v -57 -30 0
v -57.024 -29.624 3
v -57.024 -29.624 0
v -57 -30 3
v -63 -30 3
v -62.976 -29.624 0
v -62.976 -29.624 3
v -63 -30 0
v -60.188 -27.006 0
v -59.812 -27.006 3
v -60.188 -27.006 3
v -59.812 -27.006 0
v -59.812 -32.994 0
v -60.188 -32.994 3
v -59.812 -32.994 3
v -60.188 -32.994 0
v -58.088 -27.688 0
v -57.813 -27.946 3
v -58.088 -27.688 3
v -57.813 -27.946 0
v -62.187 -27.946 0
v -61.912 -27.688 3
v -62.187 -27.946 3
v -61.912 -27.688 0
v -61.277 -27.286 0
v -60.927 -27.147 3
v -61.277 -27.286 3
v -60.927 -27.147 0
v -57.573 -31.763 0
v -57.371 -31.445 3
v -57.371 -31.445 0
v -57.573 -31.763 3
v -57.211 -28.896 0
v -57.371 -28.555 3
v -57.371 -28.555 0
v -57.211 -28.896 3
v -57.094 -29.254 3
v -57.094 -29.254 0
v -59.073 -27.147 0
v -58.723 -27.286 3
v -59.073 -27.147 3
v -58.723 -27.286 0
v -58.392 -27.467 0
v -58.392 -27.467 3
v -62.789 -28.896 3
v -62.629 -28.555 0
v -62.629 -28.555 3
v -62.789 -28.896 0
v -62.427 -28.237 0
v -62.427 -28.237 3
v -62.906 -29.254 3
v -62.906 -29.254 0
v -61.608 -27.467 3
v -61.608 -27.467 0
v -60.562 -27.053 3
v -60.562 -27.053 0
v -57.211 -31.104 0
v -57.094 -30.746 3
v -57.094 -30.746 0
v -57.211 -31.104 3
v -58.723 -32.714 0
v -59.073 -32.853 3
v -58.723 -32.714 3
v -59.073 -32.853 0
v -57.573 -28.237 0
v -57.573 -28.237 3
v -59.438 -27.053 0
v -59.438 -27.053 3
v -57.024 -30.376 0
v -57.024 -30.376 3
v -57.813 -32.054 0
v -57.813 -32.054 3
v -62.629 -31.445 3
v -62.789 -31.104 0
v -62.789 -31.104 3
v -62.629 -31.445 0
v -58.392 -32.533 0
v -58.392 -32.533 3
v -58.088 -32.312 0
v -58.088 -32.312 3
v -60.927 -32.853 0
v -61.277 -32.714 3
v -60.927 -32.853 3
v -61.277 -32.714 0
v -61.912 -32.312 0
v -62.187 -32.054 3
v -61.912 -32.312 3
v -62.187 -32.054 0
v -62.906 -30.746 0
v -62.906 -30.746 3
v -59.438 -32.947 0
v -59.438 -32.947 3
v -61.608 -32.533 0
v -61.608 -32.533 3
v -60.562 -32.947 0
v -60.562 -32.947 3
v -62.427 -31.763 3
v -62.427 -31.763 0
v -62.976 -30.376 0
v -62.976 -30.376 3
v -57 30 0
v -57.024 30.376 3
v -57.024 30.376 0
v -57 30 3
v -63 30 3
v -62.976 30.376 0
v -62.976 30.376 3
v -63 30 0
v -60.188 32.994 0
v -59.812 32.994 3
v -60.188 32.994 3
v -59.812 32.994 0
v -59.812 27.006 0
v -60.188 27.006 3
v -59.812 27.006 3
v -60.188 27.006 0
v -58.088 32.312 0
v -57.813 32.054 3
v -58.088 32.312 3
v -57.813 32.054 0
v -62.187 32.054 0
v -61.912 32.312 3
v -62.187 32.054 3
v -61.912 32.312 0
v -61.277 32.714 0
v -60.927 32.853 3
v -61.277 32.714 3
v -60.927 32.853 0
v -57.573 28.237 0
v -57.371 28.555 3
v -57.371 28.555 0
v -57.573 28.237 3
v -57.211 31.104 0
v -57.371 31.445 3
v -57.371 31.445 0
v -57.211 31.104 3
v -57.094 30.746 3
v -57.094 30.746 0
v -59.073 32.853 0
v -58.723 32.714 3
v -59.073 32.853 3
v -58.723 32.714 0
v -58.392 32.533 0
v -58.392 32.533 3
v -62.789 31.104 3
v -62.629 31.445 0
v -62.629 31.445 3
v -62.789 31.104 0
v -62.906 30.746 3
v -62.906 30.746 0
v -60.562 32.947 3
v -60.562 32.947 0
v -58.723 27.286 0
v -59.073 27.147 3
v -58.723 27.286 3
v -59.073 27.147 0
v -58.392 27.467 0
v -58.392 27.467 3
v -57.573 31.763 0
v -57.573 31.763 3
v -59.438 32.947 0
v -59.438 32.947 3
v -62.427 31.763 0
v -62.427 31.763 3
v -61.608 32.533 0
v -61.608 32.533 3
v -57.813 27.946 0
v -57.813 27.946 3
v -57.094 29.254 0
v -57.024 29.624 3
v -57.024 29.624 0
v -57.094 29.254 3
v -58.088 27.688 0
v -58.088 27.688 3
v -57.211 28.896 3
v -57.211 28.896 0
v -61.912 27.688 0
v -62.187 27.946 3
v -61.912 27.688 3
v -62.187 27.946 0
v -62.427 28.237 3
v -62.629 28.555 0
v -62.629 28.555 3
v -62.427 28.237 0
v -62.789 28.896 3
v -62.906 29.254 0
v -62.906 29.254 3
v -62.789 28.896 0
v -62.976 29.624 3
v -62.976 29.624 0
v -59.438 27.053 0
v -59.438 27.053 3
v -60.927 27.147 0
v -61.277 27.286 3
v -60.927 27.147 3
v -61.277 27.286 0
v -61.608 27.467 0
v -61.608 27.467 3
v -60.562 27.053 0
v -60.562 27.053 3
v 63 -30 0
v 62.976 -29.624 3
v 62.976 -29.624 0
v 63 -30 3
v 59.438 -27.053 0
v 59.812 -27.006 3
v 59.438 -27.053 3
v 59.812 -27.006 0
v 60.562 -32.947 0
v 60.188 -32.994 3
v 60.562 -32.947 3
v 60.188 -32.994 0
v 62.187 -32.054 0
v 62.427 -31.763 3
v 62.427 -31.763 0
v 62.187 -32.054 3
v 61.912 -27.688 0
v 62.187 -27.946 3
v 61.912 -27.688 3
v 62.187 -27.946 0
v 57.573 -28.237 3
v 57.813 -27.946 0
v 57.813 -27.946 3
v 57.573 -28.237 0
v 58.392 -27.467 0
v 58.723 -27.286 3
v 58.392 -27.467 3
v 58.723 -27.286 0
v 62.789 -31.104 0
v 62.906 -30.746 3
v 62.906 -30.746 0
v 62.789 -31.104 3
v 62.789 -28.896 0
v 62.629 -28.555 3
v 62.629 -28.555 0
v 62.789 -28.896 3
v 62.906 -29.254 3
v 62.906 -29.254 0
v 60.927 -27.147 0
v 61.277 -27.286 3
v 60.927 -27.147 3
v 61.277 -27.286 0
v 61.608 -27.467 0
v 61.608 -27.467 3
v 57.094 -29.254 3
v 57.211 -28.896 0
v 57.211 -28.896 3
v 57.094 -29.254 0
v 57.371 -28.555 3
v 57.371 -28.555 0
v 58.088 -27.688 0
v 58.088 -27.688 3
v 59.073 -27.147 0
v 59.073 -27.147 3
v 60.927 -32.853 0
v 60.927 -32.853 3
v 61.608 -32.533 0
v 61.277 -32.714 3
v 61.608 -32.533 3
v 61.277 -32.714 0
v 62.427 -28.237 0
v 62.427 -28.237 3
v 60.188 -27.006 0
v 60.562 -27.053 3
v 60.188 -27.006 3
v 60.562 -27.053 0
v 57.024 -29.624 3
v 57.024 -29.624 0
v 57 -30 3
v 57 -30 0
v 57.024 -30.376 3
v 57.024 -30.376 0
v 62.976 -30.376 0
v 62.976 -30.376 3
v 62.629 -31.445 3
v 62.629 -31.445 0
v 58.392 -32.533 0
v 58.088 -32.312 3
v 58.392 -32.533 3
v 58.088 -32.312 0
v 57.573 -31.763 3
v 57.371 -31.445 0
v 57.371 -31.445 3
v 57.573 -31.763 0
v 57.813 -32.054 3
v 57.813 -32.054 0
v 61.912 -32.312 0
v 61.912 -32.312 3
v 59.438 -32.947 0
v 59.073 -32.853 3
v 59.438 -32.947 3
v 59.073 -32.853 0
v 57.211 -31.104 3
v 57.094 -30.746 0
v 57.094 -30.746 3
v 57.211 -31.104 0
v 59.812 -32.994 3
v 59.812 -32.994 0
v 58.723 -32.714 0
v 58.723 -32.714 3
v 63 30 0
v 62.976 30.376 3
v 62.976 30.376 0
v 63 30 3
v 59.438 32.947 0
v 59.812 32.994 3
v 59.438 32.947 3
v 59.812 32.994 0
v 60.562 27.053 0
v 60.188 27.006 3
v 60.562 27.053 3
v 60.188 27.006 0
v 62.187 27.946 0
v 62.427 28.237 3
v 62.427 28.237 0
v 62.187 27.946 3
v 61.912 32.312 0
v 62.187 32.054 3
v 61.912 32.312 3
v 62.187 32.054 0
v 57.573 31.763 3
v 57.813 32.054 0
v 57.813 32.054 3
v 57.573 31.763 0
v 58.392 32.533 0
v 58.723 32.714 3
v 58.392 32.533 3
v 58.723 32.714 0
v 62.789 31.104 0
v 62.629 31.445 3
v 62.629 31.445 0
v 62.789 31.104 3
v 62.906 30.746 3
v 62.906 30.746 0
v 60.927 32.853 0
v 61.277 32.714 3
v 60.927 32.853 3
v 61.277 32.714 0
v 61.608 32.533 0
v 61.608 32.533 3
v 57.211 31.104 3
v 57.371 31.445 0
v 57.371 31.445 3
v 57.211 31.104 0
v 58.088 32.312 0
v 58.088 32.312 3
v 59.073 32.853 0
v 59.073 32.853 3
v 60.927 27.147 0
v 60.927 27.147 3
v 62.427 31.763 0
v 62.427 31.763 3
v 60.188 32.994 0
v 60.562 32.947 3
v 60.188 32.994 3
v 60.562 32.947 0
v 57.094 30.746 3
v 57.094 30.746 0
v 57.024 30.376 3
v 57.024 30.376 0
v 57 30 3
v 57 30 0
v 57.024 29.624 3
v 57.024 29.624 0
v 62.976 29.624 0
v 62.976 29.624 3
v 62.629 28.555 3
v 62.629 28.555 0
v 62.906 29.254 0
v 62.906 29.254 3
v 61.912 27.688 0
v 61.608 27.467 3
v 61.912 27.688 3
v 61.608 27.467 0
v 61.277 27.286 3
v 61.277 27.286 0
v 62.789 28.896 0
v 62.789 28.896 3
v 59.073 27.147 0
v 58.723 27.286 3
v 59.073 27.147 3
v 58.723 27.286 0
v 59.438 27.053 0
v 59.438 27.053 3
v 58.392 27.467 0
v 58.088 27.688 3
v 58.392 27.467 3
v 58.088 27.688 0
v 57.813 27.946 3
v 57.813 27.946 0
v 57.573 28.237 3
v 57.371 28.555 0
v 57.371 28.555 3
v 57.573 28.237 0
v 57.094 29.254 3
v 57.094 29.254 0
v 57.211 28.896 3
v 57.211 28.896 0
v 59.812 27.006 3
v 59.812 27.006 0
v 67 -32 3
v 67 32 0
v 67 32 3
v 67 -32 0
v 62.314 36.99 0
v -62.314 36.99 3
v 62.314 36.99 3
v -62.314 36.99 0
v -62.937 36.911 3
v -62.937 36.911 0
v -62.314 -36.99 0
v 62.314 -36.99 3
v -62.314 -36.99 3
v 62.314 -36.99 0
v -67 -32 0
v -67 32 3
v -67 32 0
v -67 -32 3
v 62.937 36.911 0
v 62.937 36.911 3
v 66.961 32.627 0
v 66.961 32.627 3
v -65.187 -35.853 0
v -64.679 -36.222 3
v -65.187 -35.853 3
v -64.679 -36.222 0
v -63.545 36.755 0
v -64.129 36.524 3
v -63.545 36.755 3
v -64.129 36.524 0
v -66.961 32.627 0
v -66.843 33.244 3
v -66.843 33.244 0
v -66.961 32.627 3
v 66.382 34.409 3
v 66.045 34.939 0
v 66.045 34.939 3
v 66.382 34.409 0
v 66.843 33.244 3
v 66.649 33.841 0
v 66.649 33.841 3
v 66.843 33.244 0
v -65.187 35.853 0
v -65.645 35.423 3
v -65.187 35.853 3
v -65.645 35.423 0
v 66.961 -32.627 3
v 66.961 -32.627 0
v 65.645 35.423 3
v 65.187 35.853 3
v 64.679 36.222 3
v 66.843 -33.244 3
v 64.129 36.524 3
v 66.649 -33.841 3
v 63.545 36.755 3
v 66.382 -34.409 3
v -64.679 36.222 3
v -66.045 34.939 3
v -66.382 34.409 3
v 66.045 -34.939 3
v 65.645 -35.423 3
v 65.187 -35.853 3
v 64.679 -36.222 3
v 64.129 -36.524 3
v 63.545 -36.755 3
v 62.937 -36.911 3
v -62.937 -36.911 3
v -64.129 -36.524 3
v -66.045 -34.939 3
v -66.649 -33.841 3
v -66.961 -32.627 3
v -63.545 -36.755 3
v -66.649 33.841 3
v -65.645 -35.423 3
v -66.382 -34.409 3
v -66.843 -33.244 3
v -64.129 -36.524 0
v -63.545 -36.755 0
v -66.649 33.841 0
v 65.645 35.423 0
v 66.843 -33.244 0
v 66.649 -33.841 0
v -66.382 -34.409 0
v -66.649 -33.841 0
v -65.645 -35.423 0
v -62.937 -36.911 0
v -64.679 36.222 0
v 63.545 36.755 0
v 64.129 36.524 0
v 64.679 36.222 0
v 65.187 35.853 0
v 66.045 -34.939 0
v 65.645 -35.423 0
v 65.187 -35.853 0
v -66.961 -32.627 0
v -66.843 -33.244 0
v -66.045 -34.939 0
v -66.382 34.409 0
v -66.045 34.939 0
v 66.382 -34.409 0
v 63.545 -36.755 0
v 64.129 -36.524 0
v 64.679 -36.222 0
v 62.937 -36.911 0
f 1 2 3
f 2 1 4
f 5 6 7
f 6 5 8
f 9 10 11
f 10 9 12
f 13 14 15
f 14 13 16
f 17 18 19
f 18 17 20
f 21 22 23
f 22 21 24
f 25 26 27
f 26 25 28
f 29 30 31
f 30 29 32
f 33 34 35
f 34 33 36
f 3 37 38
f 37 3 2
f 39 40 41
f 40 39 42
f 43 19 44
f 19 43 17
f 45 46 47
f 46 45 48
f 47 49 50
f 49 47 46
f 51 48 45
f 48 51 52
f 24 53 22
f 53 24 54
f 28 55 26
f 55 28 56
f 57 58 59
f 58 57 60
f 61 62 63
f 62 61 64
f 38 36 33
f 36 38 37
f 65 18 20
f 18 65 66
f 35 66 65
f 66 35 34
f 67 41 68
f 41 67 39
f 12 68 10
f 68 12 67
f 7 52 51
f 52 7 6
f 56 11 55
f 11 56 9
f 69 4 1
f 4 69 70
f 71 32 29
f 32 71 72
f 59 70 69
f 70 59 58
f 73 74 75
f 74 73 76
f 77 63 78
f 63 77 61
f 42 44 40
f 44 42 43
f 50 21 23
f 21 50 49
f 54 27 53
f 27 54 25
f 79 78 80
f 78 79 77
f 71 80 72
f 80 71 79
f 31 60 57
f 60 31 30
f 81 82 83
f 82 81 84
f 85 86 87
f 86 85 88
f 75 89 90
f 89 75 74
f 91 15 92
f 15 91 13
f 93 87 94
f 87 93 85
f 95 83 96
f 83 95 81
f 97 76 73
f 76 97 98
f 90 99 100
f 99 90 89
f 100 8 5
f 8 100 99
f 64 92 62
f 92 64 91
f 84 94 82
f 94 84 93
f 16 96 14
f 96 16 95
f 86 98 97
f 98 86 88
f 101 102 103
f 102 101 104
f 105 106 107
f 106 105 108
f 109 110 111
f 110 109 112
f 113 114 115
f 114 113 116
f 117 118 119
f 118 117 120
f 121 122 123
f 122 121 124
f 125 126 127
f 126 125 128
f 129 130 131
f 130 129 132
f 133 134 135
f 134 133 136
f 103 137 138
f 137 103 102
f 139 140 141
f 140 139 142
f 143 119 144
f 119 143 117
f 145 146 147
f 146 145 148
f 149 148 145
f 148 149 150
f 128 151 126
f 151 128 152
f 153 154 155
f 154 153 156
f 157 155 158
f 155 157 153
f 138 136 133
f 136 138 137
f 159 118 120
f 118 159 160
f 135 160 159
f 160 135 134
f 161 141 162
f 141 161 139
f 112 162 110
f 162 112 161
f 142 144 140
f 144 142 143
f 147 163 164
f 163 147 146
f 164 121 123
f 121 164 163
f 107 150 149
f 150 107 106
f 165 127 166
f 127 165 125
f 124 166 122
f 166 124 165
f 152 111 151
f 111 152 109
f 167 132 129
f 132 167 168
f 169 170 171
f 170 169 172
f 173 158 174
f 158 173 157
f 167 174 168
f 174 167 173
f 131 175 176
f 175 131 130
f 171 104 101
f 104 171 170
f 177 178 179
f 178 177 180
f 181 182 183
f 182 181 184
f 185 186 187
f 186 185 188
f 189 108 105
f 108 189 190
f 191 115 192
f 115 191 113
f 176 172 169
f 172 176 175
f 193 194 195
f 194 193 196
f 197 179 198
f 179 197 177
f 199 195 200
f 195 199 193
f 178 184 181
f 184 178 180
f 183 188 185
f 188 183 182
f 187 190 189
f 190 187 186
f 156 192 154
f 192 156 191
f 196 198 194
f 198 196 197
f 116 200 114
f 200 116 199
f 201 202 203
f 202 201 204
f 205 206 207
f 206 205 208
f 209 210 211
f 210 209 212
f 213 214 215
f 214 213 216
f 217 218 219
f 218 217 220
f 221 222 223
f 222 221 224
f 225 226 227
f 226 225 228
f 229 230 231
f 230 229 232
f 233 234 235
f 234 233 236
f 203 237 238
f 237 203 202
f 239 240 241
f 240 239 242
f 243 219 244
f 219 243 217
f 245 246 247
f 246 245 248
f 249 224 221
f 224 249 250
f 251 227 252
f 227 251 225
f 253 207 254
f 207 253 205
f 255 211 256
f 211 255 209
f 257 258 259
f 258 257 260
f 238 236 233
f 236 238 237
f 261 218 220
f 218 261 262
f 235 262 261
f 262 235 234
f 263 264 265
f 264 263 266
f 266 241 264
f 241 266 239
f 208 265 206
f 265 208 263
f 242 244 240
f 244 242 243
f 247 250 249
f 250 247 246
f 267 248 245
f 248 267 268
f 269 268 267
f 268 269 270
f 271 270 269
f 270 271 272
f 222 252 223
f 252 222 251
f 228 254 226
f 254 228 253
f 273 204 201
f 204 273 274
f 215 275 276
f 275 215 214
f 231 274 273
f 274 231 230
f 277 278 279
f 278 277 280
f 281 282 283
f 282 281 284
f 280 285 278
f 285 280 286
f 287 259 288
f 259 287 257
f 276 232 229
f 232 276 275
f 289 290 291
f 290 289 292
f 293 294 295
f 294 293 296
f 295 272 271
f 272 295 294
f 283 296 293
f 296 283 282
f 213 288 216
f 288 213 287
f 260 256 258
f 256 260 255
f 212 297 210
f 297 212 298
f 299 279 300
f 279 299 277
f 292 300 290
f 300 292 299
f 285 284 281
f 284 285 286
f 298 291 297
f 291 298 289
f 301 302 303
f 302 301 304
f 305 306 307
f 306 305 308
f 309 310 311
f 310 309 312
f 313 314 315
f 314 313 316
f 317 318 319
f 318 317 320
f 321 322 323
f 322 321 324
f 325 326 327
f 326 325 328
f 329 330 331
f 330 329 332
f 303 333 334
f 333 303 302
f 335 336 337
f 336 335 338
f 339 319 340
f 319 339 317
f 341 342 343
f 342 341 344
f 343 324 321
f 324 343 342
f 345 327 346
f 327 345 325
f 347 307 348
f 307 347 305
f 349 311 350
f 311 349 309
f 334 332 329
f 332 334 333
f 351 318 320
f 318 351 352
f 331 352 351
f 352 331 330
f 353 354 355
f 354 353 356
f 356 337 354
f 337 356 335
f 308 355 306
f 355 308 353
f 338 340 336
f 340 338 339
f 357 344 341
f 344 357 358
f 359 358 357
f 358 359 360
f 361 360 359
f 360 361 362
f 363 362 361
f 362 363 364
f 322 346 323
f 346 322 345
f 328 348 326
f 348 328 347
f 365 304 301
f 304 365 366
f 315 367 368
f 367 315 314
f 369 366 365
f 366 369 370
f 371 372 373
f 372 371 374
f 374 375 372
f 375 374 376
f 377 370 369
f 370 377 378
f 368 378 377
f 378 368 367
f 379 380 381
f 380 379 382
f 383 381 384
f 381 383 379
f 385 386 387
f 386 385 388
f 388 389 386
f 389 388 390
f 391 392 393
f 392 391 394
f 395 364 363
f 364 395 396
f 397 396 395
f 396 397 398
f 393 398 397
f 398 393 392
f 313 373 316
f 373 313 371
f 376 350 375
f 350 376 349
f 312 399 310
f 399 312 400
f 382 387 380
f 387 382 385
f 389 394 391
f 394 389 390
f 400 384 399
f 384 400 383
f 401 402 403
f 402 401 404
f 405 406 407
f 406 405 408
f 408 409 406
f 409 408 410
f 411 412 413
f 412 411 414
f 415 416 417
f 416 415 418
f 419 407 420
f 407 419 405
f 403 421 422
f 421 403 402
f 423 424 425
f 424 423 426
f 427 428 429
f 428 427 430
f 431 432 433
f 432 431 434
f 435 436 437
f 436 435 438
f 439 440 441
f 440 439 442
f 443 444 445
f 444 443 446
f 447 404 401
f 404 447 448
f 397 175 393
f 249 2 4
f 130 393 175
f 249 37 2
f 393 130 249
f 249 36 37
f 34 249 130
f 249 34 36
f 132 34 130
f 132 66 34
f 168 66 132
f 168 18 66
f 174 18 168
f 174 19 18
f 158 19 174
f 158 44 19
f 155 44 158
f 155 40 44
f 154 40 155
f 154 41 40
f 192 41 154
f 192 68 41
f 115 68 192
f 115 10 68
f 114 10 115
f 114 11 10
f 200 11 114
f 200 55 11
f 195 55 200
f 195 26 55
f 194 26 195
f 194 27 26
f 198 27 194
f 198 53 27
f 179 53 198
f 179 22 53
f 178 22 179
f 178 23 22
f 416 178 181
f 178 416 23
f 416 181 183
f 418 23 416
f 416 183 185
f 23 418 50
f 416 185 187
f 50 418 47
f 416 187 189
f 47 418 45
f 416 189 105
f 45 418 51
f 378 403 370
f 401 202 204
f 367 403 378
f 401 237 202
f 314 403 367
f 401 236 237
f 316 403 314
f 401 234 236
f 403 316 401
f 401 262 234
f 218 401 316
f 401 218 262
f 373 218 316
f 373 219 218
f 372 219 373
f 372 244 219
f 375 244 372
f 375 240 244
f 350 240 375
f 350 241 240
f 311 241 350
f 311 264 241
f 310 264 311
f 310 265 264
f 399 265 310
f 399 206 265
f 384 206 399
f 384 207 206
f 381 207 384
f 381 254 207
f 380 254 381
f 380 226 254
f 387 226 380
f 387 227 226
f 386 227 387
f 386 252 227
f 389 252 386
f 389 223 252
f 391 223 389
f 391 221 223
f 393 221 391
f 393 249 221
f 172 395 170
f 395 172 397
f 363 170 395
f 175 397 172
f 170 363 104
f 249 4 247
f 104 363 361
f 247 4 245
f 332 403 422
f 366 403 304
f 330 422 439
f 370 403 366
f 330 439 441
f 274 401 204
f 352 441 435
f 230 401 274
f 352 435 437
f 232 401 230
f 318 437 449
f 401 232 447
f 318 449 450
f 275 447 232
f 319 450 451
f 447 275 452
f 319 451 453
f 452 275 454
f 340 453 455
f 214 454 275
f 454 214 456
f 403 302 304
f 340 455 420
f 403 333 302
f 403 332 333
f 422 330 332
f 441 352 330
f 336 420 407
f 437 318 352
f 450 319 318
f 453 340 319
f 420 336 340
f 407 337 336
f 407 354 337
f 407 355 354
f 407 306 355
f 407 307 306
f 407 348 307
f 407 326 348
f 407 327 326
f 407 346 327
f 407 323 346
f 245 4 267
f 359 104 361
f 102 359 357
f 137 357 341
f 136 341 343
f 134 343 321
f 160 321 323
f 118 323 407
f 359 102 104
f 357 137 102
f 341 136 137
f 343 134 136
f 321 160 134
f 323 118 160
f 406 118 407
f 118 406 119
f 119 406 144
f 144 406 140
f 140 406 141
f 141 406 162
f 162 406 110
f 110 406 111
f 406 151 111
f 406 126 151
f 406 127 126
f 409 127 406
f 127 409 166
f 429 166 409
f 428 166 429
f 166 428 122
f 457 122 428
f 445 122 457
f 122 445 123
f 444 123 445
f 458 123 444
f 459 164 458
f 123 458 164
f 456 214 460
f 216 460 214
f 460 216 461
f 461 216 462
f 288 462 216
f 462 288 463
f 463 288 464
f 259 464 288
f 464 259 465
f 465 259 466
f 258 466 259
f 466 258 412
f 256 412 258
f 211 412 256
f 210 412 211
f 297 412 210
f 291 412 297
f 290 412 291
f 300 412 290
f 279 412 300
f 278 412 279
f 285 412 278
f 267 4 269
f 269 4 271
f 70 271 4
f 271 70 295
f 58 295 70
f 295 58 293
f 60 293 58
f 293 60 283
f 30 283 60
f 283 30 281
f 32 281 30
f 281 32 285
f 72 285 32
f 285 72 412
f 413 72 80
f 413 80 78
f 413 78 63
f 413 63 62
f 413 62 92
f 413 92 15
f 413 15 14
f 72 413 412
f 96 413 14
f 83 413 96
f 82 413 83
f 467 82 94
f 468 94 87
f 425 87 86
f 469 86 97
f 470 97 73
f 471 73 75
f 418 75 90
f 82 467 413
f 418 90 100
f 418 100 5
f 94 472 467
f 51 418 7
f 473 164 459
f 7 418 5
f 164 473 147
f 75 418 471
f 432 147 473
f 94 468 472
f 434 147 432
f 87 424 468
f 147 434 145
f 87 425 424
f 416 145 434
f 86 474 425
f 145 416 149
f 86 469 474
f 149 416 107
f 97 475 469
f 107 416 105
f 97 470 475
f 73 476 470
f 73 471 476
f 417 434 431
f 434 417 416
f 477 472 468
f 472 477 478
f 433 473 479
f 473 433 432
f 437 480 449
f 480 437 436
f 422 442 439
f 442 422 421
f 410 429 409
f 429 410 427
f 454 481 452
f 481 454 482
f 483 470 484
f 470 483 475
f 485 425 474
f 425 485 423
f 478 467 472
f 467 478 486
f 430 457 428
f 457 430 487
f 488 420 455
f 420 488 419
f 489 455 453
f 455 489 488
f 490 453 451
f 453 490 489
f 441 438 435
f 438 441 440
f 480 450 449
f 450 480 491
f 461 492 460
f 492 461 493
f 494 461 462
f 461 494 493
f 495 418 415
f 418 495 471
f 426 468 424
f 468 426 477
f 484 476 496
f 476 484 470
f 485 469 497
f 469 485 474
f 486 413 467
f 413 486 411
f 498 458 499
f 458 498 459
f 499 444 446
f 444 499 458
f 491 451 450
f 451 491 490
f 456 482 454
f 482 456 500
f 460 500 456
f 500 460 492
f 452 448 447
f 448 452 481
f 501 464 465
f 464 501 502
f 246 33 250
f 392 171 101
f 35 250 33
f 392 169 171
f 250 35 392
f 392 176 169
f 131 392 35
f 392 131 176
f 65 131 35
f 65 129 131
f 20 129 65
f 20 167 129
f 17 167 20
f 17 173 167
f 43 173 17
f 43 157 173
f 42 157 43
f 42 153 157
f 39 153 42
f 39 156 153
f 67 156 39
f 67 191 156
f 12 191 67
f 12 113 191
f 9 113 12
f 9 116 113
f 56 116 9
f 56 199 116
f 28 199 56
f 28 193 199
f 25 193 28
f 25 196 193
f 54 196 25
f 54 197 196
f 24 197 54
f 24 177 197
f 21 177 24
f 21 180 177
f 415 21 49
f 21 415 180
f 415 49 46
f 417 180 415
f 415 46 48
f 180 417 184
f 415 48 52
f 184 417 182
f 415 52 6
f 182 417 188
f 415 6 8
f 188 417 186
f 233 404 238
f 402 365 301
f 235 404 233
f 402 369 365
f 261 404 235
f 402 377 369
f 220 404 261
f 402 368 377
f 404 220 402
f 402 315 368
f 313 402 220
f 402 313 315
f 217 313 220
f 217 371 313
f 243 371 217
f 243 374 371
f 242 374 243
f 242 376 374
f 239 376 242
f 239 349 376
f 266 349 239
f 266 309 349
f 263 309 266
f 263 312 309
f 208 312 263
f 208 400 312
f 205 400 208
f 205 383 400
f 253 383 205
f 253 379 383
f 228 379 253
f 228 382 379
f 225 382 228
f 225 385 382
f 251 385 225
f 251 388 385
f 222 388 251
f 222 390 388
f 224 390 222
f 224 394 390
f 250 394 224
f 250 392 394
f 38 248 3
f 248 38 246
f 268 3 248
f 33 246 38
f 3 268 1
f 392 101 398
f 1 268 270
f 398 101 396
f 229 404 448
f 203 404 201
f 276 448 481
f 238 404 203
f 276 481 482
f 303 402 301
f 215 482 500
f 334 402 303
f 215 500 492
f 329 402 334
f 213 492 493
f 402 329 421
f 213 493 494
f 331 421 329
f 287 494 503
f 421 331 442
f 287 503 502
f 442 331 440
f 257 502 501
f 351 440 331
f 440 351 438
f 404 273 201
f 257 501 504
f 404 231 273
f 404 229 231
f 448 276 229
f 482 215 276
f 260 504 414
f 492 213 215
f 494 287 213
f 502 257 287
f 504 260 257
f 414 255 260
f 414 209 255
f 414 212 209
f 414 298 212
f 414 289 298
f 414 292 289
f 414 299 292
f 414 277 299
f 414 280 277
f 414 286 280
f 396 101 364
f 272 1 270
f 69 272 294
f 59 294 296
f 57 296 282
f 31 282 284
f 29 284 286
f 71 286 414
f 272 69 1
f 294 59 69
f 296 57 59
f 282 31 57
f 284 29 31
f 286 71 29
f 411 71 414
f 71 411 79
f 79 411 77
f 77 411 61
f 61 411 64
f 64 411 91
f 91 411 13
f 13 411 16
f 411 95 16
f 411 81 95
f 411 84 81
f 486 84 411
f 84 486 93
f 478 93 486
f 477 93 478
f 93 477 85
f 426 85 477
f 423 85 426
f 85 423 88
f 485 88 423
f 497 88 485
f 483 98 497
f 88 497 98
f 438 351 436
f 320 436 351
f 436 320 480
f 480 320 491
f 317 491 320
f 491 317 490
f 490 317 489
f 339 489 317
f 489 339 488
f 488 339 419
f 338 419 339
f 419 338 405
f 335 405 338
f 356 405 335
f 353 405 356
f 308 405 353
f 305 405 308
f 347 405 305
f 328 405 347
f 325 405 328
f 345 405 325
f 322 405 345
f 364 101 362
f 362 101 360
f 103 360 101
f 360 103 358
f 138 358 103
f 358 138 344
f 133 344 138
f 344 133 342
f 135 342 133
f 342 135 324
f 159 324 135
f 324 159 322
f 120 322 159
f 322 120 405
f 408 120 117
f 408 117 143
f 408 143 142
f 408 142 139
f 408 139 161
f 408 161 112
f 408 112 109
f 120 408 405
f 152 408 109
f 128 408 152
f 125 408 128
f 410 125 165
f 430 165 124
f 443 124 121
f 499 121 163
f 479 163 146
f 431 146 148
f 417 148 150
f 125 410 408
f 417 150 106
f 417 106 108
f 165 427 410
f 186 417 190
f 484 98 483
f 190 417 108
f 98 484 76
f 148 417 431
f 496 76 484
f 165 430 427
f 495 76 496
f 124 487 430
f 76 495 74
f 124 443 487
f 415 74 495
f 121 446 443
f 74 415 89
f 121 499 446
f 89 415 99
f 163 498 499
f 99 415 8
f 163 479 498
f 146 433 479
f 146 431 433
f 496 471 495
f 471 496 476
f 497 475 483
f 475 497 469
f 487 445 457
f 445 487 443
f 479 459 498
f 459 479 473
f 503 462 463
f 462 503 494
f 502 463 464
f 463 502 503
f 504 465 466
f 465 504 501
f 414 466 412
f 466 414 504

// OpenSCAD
$fn = 50;


difference() {
	union() {
		hull() {
			translate(v = [-62.0000000000, 32.0000000000, 0]) {
				cylinder(h = 3, r = 5);
			}
			translate(v = [62.0000000000, 32.0000000000, 0]) {
				cylinder(h = 3, r = 5);
			}
			translate(v = [-62.0000000000, -32.0000000000, 0]) {
				cylinder(h = 3, r = 5);
			}
			translate(v = [62.0000000000, -32.0000000000, 0]) {
				cylinder(h = 3, r = 5);
			}
		}
	}
	union() {
		translate(v = [-60.0000000000, -30.0000000000, -100.0000000000]) {
			cylinder(h = 200, r = 3.0000000000);
		}
		translate(v = [-60.0000000000, 30.0000000000, -100.0000000000]) {
			cylinder(h = 200, r = 3.0000000000);
		}
		translate(v = [60.0000000000, -30.0000000000, -100.0000000000]) {
			cylinder(h = 200, r = 3.0000000000);
		}
		translate(v = [60.0000000000, 30.0000000000, -100.0000000000]) {
			cylinder(h = 200, r = 3.0000000000);
		}
	}
}
